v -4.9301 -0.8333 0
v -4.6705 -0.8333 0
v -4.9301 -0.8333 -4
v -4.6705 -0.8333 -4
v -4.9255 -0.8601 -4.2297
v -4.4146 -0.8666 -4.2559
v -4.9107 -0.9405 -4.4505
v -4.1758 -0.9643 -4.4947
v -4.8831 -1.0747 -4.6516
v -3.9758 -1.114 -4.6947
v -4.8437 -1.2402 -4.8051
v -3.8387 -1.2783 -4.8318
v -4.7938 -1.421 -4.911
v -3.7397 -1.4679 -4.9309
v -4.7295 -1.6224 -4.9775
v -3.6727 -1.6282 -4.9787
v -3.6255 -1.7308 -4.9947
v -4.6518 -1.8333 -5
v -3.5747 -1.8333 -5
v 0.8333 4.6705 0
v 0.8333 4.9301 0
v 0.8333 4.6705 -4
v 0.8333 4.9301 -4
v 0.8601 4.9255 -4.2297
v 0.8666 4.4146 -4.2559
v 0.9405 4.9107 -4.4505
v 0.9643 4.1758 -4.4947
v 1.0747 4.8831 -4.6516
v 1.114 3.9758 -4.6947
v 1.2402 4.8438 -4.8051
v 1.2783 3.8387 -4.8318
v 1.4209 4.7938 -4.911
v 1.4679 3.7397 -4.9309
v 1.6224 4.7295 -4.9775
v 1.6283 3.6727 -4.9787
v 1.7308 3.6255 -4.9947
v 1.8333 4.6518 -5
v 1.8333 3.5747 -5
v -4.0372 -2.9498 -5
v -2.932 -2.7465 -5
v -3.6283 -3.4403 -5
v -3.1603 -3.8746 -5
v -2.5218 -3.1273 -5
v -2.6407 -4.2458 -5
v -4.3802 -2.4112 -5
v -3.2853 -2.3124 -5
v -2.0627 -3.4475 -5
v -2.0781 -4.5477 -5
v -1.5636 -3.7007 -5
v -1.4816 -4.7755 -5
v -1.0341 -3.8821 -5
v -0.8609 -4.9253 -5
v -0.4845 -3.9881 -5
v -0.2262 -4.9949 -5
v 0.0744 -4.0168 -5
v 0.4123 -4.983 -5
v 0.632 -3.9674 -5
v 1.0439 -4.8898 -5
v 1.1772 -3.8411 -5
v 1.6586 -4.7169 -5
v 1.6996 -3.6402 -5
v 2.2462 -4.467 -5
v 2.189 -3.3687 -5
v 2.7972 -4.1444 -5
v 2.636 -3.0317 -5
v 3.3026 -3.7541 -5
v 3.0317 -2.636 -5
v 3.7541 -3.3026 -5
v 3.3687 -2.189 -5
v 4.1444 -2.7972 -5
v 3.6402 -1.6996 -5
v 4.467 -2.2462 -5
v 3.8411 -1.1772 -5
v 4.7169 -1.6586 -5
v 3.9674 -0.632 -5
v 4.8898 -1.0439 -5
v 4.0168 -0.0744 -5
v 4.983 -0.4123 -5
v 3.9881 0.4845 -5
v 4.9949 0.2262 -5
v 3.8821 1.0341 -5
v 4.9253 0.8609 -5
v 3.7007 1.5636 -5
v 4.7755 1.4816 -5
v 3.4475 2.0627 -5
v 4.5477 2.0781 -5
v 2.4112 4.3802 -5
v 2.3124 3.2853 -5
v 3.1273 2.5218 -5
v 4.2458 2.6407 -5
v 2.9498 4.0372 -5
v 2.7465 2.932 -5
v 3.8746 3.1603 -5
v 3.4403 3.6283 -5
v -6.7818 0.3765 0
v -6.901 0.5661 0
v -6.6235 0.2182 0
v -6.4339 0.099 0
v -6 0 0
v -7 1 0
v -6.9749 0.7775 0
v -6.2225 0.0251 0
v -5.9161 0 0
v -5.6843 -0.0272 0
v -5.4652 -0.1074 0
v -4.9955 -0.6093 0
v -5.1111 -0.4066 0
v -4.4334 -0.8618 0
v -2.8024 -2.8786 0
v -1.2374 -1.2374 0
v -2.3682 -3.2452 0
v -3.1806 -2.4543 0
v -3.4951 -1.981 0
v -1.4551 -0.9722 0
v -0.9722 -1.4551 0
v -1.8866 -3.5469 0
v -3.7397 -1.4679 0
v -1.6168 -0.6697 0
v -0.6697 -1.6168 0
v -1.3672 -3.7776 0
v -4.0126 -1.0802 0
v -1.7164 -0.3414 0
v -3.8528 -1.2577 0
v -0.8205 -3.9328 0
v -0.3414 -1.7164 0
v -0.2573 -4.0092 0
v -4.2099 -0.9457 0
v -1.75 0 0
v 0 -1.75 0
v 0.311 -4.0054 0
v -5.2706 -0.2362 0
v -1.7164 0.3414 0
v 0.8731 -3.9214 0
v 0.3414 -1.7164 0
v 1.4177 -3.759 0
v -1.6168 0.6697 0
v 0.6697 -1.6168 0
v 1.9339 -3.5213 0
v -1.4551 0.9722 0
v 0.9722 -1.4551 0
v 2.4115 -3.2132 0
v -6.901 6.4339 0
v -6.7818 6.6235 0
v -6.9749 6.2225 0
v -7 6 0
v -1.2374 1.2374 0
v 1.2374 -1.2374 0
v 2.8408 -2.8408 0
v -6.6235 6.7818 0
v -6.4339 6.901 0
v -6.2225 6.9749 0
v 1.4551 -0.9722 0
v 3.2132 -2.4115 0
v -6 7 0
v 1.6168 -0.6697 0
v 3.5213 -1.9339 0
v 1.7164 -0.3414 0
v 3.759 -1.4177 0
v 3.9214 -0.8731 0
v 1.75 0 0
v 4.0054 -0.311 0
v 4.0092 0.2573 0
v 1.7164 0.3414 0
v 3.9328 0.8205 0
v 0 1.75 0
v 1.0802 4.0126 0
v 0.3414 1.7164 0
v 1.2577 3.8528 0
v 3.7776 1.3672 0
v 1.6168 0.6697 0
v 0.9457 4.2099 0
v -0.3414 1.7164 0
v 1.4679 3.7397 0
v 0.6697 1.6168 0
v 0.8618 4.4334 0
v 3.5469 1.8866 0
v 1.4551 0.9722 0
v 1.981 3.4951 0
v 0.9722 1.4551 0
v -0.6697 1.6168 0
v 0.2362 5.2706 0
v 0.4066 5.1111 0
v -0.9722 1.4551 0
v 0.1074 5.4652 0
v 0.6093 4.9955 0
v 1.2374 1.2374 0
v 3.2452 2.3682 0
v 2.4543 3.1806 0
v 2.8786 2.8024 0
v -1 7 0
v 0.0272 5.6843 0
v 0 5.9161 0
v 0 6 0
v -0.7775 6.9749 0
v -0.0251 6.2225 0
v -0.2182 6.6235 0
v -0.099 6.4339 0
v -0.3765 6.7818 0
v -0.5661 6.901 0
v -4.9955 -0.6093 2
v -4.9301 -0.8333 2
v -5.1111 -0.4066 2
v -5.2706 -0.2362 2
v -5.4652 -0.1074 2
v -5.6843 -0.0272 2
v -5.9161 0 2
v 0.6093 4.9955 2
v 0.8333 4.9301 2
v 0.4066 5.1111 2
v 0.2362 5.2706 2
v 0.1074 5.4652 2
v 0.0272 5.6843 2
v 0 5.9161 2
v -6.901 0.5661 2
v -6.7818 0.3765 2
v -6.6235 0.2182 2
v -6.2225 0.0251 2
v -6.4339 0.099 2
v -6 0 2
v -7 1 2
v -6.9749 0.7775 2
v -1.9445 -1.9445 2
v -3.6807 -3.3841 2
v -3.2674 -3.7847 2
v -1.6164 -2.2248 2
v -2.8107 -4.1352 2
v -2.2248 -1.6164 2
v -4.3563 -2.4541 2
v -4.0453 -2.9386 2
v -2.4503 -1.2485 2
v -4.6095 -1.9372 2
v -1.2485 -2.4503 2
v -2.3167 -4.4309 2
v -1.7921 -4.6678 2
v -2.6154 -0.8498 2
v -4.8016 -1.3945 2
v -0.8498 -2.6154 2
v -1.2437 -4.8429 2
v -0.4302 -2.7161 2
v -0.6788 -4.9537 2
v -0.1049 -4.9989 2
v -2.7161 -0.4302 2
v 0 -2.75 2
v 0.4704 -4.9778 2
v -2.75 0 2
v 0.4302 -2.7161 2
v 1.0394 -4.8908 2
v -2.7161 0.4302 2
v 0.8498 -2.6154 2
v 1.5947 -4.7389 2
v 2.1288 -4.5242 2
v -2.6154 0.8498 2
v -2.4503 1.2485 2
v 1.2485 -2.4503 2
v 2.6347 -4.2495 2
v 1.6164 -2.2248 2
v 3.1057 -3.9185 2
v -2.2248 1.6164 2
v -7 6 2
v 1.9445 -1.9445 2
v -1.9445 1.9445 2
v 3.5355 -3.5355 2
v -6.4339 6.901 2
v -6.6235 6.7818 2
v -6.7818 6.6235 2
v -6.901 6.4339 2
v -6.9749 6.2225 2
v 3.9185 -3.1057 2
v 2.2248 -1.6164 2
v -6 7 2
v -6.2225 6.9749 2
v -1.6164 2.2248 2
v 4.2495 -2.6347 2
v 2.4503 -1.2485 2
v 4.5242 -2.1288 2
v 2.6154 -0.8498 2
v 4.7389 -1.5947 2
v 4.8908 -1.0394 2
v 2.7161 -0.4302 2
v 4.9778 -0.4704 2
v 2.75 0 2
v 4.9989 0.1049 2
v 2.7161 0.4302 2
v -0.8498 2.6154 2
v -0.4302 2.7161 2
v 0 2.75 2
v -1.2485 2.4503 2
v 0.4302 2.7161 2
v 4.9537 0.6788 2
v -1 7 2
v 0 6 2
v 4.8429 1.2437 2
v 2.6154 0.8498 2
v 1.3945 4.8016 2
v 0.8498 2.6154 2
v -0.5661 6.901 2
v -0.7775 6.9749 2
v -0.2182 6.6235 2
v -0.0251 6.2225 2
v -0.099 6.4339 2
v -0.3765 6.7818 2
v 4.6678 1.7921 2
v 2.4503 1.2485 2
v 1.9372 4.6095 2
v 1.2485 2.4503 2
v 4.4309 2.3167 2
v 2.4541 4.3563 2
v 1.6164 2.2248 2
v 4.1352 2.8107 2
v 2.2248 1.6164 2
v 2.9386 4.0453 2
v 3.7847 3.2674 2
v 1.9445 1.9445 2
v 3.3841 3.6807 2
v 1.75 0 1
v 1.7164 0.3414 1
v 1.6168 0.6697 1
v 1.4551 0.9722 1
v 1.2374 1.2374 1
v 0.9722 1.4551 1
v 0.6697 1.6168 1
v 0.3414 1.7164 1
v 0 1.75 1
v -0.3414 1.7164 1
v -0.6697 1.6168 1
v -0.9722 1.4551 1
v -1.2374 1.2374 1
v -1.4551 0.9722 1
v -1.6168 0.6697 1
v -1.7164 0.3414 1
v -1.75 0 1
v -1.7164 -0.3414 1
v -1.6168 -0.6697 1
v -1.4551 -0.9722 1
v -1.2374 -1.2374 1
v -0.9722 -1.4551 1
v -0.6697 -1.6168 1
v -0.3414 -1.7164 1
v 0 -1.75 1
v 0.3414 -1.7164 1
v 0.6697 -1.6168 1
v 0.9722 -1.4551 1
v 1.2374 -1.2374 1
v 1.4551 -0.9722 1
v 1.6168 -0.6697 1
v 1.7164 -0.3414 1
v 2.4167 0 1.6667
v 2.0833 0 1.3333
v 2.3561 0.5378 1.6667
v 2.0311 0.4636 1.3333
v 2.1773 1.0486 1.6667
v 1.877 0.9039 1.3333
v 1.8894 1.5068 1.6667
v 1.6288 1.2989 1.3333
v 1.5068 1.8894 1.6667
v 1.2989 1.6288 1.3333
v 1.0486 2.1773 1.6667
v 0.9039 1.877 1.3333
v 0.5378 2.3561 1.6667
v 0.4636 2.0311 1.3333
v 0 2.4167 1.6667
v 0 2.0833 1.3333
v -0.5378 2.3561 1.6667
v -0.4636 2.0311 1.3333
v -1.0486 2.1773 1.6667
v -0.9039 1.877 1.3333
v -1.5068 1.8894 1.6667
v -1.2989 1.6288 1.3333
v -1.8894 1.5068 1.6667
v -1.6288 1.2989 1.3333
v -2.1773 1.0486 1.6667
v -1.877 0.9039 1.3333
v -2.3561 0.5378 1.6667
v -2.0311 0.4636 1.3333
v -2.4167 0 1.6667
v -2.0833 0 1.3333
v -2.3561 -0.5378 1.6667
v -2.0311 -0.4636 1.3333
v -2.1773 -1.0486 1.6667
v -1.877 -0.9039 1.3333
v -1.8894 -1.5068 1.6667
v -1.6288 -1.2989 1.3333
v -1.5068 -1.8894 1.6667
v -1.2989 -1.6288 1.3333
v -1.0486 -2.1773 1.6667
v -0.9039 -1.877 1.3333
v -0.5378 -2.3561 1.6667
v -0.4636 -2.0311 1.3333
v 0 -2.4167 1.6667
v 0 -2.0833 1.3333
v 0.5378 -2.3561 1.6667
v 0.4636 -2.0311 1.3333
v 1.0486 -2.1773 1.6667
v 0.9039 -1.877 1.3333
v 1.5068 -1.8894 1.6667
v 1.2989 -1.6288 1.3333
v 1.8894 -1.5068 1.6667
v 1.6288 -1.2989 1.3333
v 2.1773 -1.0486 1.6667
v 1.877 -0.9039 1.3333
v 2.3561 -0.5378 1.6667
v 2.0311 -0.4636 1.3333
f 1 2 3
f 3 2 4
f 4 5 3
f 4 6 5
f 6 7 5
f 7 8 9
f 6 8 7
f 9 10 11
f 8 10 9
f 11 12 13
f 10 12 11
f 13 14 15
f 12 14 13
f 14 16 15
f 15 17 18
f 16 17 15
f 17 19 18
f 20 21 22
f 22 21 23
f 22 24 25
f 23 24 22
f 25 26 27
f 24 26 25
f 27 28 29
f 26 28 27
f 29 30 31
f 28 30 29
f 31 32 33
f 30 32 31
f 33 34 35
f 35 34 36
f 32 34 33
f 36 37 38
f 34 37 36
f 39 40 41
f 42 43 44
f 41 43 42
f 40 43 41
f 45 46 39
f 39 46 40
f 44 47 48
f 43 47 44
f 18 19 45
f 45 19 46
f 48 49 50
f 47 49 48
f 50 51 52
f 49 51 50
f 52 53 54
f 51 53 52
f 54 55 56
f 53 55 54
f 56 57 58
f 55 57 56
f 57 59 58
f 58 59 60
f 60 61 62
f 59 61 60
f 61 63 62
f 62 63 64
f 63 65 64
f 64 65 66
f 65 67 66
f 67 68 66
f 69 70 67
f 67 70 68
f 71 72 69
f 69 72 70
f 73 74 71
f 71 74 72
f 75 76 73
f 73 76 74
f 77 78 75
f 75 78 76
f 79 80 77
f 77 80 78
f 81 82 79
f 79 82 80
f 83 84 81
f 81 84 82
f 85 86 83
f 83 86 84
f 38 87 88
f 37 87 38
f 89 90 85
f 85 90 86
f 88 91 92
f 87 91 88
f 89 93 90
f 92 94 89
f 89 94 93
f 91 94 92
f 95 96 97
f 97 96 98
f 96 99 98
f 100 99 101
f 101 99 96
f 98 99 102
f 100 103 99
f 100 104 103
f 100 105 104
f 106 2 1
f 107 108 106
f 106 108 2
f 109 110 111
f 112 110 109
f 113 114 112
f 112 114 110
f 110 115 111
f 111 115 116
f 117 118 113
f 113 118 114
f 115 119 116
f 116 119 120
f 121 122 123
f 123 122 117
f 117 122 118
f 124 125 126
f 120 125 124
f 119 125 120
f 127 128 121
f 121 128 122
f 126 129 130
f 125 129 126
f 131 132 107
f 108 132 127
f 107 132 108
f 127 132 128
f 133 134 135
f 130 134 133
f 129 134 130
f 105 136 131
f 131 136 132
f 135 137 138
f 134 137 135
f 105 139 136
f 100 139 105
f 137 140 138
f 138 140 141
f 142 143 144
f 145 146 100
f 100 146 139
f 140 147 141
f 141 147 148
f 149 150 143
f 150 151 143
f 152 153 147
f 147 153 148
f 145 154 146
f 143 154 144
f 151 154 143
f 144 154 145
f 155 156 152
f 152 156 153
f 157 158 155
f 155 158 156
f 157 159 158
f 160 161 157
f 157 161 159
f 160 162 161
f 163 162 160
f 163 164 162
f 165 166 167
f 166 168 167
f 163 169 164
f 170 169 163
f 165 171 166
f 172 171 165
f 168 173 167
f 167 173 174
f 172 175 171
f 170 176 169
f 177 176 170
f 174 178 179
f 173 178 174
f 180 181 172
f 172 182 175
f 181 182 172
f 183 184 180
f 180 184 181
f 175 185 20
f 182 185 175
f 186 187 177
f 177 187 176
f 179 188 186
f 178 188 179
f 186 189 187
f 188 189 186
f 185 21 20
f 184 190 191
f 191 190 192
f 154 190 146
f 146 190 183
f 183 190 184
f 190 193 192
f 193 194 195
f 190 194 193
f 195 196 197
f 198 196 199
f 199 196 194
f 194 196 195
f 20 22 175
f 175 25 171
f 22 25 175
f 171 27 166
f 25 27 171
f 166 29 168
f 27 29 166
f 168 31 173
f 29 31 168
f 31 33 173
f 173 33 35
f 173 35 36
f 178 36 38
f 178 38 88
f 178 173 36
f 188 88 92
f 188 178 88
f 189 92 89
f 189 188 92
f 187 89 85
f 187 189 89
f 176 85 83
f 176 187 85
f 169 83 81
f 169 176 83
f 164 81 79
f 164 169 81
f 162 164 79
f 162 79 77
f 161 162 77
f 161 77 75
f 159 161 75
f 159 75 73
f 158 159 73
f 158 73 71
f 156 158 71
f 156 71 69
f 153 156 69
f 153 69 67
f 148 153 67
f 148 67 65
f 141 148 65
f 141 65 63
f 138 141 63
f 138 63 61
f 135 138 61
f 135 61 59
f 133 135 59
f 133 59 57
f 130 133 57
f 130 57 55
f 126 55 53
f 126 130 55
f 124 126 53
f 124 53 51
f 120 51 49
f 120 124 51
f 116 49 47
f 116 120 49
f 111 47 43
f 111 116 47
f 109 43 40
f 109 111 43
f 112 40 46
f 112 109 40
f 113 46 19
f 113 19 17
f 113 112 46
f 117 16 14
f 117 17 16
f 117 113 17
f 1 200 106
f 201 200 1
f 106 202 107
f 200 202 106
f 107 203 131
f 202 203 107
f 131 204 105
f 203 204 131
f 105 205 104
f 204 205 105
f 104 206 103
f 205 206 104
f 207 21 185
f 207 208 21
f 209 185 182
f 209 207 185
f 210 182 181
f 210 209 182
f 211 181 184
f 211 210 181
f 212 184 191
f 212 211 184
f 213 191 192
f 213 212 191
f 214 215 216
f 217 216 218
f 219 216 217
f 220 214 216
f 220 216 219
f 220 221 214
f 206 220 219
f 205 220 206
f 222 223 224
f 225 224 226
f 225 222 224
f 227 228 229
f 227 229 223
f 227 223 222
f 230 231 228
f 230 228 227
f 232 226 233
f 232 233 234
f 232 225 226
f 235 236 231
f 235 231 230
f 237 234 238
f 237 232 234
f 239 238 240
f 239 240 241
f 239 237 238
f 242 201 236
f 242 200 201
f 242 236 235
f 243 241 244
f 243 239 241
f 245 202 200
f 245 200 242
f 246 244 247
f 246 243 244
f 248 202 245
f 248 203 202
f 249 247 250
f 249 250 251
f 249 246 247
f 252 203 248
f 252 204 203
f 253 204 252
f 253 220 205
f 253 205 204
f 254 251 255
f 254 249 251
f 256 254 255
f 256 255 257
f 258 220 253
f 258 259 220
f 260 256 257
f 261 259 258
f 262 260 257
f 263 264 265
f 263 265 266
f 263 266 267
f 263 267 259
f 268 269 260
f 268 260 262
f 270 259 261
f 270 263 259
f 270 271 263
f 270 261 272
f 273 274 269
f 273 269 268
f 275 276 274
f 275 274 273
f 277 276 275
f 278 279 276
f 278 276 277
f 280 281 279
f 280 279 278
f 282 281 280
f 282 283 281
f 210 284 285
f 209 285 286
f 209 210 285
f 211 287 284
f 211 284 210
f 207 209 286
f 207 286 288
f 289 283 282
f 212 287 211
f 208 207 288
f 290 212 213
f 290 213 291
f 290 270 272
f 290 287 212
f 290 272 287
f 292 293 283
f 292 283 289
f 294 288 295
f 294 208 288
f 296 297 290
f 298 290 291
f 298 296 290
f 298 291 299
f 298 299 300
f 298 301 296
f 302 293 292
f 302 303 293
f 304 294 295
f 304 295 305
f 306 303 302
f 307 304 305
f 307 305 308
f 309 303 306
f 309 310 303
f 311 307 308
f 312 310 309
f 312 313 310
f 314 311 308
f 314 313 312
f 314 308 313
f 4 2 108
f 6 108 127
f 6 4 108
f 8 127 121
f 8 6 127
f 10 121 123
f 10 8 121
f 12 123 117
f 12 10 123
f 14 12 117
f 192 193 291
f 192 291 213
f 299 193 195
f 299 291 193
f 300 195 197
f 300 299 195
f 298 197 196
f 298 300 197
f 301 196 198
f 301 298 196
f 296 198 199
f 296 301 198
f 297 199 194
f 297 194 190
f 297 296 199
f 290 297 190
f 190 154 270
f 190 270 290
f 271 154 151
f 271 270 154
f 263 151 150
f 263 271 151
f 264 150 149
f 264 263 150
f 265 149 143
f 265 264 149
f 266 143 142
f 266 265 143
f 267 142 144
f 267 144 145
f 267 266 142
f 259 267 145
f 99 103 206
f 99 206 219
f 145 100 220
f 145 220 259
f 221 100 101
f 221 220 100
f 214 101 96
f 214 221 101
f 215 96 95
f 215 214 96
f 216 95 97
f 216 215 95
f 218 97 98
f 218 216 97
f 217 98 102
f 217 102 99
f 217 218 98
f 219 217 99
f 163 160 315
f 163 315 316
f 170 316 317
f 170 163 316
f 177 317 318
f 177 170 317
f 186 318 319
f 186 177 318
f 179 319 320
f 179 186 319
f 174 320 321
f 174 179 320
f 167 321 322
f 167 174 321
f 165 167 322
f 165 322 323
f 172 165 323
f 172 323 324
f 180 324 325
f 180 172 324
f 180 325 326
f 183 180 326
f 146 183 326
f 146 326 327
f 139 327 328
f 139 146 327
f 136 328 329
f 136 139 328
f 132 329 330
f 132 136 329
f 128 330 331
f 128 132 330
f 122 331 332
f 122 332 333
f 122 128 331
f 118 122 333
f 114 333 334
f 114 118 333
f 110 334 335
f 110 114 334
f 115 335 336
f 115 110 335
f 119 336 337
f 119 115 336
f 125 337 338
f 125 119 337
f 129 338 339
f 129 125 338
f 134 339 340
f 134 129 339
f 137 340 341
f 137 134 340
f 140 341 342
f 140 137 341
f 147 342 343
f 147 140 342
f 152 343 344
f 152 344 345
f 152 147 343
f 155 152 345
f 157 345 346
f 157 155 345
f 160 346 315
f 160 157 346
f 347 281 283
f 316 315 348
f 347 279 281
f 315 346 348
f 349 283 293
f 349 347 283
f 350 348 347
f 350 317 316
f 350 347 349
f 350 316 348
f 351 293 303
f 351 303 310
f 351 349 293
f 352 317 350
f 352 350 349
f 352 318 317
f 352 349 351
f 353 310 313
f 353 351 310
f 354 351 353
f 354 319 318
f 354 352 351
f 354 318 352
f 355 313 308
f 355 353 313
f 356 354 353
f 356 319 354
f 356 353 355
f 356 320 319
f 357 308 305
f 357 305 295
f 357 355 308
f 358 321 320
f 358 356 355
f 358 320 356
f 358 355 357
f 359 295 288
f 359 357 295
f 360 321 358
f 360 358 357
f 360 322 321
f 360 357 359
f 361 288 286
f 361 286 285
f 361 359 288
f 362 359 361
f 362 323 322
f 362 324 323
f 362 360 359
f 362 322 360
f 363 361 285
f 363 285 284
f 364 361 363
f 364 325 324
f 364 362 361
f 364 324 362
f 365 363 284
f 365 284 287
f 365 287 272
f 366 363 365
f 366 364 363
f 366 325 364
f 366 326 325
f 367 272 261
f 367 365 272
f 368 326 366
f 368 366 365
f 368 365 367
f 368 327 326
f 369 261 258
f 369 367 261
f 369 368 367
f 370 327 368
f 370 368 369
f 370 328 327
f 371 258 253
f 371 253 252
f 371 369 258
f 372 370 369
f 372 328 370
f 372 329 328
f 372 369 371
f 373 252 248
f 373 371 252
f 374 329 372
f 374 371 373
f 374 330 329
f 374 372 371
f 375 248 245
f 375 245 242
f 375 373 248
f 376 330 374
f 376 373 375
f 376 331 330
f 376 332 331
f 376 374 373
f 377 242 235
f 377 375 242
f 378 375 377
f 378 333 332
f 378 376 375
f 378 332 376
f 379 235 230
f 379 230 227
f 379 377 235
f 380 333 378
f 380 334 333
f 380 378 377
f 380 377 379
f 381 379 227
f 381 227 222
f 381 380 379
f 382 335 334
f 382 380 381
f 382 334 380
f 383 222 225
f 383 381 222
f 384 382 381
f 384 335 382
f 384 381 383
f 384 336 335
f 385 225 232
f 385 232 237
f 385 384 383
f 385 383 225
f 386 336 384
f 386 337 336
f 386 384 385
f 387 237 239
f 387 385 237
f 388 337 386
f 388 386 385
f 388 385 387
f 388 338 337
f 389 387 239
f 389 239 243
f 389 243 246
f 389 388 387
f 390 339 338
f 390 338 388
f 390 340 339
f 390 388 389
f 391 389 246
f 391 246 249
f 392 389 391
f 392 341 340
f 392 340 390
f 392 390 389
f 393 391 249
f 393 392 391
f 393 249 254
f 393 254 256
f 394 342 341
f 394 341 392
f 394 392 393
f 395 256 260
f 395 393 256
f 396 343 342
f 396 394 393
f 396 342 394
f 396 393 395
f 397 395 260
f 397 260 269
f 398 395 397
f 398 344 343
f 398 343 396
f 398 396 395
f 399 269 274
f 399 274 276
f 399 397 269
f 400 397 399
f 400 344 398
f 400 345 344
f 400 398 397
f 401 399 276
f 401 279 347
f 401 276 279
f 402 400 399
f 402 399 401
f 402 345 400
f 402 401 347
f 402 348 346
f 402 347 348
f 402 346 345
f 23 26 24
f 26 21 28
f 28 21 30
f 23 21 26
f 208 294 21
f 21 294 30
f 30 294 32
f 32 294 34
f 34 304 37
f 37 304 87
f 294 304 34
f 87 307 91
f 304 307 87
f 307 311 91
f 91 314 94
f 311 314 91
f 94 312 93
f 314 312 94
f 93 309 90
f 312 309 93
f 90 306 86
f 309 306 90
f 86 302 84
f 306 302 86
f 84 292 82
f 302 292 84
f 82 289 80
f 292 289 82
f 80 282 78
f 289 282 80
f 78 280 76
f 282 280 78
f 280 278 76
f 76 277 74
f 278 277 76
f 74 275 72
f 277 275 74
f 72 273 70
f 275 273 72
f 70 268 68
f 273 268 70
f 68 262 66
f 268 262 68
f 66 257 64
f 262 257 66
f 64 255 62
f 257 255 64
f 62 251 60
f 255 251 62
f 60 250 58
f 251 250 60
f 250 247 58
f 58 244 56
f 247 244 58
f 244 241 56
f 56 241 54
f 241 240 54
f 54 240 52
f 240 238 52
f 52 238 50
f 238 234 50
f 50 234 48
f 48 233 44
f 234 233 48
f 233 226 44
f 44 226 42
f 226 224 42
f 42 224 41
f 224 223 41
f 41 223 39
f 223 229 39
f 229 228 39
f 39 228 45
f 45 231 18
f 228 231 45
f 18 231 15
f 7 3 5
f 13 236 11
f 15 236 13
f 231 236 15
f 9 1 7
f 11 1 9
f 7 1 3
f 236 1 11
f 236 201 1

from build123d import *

# Parameters (mm, degrees)
SKETCH_R     = 1.75
PAD_DEPTH    = 2
FILLET_R     = 1
CHAMFER_SIZE = 1
PAD001_DEPTH = 5
FILLET001_R  = 1


with BuildPart() as part:
    # Sketch → Pad (new body)
    with BuildSketch(Plane.XY):
        with BuildLine():
            ThreePointArc((-5, 0), (3.535534, -3.535534), (0, 5))
            Line((0, 7), (0, 5))
            Line((-7, 7), (0, 7))
            Line((-7, 0), (-7, 7))
            Line((-5, 0), (-7, 0))
        make_face()
        Circle(SKETCH_R, mode=Mode.SUBTRACT)
    extrude(amount=PAD_DEPTH)

    # Fillet
    fillet_edges = [part.edges().sort_by_distance(p)[0] for p in [
        (-7, 0, 1),
        (-7, 7, 1),
        (0, 7, 1),
        (0, 5, 1),
        (-5, 0, 1),
    ]]
    fillet(fillet_edges, radius=FILLET_R)

    # Chamfer
    chamfer_edges = [part.edges().sort_by_distance(p)[0] for p in [
        (-1.75, 0, 2),
    ]]
    chamfer(chamfer_edges, length=CHAMFER_SIZE)

    # Sketch001 (on Face14 of Chamfer) → Pad001 (join)
    with BuildSketch(Plane(origin=(0, 0, 0), x_dir=(1, 0, 0), z_dir=(0, 0, -1))):
        with BuildLine():
            ThreePointArc((0.833333, -3.930066), (2.840763, 2.840763), (-3.930066, 0.833333))
            Line((-4.930066, 0.833333), (-3.930066, 0.833333))
            ThreePointArc((0.833333, -4.930066), (3.535534, 3.535534), (-4.930066, 0.833333))
            Line((0.833333, -3.930066), (0.833333, -4.930066))
        make_face()
    extrude(amount=PAD001_DEPTH)

    # Fillet001
    fillet001_edges = [part.edges().sort_by_distance(p)[0] for p in [
        (-4.430066, -0.833333, -5),
        (0.833333, 4.430066, -5),
        (0.833333, 3.930066, -2.5),
        (-3.930066, -0.833333, -2.5),
    ]]
    fillet(fillet001_edges, radius=FILLET001_R)


solid = part.part
